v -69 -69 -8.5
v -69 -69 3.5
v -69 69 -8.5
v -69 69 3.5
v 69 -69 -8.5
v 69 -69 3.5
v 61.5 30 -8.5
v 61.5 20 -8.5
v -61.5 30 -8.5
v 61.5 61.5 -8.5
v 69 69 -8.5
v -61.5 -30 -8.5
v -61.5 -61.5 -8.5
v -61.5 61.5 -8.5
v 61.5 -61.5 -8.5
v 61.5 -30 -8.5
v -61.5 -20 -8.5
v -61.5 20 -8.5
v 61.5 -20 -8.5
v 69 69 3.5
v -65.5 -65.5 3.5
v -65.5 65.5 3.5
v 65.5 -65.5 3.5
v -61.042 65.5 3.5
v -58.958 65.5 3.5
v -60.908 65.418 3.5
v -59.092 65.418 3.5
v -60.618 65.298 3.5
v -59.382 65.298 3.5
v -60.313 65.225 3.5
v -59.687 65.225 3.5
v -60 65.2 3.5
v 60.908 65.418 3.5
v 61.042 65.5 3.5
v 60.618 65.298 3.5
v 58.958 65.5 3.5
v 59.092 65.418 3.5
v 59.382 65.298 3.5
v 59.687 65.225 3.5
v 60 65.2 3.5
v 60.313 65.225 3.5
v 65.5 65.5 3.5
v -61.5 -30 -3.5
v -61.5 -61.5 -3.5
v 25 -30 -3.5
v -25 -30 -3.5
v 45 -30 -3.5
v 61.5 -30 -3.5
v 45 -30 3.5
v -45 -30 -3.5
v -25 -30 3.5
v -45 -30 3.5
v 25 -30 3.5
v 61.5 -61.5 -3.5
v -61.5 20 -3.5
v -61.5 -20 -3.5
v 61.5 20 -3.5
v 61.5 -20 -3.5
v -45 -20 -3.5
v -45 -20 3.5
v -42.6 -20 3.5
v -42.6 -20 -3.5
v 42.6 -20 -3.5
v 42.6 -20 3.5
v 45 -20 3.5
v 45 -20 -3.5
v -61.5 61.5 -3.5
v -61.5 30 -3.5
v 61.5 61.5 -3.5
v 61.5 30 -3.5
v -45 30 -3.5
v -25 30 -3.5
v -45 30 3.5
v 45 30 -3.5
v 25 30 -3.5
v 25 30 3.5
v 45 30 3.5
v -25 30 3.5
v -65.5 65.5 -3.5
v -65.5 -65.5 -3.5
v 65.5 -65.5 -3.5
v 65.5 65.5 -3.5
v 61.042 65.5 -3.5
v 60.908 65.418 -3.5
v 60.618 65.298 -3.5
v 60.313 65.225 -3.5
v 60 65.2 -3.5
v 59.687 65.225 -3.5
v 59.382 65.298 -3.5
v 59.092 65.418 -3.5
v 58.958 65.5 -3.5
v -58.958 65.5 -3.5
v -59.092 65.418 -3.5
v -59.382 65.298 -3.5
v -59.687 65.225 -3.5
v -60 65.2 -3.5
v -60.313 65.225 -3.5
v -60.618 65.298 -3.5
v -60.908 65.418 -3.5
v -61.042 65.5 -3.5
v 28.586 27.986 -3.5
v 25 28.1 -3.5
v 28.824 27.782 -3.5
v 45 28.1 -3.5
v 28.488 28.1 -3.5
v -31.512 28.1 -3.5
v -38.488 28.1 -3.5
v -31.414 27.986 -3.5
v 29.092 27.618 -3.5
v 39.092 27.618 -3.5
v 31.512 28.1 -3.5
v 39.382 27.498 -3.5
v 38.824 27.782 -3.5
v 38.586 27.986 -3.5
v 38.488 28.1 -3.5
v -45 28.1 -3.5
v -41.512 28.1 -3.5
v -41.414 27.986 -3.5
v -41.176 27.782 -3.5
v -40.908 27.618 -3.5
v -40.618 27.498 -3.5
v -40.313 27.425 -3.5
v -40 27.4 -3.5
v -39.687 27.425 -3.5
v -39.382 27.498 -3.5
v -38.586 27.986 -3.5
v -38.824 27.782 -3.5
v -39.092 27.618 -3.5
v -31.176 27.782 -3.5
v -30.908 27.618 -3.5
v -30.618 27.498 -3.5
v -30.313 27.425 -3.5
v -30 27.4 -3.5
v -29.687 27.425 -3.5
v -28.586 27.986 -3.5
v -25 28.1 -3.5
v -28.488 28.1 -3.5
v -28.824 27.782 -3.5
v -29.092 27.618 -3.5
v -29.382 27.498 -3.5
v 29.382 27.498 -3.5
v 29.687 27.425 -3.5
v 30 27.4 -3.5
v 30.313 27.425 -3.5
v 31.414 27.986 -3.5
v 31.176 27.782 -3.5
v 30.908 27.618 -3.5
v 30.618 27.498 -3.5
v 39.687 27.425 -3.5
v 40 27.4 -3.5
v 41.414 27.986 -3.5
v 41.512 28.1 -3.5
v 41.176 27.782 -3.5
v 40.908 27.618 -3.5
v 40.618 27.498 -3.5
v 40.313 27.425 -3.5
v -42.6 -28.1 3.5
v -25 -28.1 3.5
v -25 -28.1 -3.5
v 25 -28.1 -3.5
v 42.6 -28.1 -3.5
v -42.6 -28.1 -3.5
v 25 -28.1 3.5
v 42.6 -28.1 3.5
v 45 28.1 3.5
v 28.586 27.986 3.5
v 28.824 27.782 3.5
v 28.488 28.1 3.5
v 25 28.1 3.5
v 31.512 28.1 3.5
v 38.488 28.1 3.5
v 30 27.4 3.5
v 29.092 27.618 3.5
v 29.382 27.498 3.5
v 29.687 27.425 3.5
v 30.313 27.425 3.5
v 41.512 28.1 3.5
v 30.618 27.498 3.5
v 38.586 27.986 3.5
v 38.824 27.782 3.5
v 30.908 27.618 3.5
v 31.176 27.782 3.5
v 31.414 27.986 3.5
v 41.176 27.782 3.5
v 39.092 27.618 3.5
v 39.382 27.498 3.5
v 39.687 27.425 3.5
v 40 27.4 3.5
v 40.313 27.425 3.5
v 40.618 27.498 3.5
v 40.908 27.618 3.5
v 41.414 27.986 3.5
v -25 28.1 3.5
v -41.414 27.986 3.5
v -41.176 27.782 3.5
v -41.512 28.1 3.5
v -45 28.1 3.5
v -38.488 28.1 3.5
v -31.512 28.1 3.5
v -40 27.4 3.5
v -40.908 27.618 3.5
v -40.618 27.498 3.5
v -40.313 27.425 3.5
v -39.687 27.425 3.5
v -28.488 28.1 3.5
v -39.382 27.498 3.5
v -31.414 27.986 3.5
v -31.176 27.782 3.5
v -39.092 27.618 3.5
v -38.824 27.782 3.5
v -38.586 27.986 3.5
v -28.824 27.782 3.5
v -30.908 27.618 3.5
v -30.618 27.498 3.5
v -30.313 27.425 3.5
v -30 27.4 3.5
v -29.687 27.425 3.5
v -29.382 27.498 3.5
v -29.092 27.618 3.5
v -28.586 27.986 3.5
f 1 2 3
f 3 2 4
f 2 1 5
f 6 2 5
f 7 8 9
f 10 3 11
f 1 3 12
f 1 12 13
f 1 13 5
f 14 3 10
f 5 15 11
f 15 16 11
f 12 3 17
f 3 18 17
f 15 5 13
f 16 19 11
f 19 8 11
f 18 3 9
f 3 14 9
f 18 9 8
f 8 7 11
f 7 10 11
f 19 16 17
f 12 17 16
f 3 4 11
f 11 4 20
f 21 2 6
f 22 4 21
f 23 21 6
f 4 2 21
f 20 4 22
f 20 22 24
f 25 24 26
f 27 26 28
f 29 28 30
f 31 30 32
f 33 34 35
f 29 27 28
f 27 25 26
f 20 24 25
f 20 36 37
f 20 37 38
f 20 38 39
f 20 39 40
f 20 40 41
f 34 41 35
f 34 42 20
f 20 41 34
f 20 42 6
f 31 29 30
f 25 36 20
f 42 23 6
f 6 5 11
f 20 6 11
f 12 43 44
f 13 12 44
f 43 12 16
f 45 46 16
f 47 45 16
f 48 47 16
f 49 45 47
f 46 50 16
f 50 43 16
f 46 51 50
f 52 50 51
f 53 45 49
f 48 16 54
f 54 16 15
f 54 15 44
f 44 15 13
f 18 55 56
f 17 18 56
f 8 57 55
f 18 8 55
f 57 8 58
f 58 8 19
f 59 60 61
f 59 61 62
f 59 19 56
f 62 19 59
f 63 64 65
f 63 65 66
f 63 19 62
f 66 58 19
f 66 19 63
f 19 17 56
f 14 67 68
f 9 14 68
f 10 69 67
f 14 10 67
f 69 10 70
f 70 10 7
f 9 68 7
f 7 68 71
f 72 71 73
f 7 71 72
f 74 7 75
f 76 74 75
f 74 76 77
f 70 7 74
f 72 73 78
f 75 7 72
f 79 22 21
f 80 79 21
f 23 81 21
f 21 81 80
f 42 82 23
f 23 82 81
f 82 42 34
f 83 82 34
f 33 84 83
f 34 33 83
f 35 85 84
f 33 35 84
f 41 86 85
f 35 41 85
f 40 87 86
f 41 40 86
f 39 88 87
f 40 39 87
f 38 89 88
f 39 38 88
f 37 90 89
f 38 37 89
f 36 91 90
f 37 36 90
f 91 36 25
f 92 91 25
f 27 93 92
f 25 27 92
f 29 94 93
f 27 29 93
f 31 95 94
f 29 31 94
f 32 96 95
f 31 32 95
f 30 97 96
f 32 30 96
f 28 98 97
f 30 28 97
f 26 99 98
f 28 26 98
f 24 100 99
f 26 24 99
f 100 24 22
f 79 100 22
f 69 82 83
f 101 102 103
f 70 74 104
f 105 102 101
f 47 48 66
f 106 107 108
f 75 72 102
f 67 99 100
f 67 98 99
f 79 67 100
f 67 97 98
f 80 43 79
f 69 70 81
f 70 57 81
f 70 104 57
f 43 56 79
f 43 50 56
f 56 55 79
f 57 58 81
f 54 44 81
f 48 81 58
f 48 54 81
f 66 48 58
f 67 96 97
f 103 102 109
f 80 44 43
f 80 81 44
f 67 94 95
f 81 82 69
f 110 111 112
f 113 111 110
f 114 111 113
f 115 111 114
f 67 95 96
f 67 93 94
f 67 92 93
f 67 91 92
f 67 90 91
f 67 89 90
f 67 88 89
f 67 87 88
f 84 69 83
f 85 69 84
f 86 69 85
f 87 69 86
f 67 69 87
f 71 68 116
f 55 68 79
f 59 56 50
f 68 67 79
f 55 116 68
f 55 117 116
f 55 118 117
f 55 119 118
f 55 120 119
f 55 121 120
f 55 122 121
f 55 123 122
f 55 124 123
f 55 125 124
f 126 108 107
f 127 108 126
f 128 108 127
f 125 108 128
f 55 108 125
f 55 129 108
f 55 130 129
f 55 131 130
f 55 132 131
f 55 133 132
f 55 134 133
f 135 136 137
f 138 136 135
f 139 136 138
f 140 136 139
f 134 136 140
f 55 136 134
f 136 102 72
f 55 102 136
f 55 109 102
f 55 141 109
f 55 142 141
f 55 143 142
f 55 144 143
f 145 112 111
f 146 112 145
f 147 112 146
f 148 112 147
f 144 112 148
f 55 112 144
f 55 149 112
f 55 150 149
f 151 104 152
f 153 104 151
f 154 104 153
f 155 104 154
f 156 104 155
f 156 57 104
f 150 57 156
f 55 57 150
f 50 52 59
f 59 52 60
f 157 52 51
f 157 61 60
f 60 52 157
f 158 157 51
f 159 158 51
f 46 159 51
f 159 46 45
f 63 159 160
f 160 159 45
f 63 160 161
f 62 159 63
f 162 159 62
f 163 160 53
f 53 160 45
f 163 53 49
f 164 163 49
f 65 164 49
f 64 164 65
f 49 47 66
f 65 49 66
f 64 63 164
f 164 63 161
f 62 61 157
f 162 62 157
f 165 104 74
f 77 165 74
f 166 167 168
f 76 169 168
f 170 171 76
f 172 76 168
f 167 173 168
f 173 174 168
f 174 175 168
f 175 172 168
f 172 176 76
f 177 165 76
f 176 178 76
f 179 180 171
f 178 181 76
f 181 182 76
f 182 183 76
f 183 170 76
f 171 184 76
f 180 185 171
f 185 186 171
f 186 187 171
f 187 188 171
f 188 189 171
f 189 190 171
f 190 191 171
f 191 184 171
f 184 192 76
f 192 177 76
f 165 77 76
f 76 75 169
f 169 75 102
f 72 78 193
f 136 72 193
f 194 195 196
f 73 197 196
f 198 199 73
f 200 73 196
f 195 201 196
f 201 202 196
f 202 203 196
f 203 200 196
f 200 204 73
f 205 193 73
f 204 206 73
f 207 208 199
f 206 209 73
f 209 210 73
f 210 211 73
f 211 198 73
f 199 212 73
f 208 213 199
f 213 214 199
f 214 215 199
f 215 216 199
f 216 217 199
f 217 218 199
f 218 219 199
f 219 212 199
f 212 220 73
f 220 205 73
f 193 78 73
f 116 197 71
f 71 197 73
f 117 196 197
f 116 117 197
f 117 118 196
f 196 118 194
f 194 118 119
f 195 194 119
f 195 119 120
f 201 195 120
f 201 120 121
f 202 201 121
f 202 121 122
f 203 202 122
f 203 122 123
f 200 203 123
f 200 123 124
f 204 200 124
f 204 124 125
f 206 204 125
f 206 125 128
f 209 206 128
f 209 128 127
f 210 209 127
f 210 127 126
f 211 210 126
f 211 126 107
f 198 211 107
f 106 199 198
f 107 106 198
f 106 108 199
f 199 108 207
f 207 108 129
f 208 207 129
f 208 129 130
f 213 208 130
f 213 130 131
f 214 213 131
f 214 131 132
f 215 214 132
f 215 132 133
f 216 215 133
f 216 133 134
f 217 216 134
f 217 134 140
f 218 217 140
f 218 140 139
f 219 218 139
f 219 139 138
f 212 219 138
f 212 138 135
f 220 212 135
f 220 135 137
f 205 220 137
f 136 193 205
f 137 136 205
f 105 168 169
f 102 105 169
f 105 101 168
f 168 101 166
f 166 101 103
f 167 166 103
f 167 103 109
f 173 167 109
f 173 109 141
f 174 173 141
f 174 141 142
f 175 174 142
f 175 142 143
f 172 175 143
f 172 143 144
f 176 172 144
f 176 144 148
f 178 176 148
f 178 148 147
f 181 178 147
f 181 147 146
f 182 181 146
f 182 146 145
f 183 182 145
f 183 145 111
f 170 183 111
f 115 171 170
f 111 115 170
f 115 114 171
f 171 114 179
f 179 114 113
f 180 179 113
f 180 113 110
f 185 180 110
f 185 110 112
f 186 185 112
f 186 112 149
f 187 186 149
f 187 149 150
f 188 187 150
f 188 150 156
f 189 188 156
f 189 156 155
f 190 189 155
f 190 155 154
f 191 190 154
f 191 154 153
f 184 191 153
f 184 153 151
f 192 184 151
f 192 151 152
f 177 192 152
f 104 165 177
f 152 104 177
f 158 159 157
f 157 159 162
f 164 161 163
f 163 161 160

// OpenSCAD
// Base Torre Rádio
//
// (c) 2014 Afonso Coutinho <afonso@yack.com.br>
//
// This program is free software: you can redistribute it and/or modify
// it under the terms of the GNU General Public License as published by
// the Free Software Foundation, either version 2 of the License, or
// (at your option) any later version.
//
// This program is distributed in the hope that it will be useful,
// but WITHOUT ANY WARRANTY; without even the implied warranty of
// MERCHANTABILITY or FITNESS FOR A PARTICULAR PURPOSE.  See the
// GNU General Public License for more details.
//
// You should have received a copy of the GNU General Public License
// along with this program.  If not, see <http://www.gnu.org/licenses/>.

$fn = 40;

module pino(){
	difference(){
		cylinder(r=2,h=7,center=true);
		translate([0,4,0])
		cube([10,10,10],center=true);
	}
}

module BaseTorreRadio(){

	//borda 1
	difference(){
		cube([138,138,7],center=true);
		cube([131,131,10],center=true);
	}

	//borda 2
	translate([0,0,-6]){
		difference(){
			cube([138,138,5],center=true);
			cube([123,123,10],center=true);
		}
	}

	//vigas centrais
	translate([0,0,-6]){
		difference(){
			cube([138,60,5],center=true);
			cube([132.2,40,10],center=true);
		}
	}

	//encaixes centrais
	difference(){
		cube([90,60,7],center=true);

		cube([85.2,56.2,10],center=true);

		cube([100,40,10],center=true);

		translate([0,8.1,0])
		cube([100,40,10],center=true);

		translate([0,0,0])
		cube([50,80,10],center=true);
	}

	//pinos
	translate([ 30, 29.4]) pino();
	translate([-30, 29.4]) pino();
	translate([-40, 29.4]) pino();
	translate([ 40, 29.4]) pino();
	translate([ 60, 67.2]) pino();
	translate([-60, 67.2]) pino();
}

BaseTorreRadio();
